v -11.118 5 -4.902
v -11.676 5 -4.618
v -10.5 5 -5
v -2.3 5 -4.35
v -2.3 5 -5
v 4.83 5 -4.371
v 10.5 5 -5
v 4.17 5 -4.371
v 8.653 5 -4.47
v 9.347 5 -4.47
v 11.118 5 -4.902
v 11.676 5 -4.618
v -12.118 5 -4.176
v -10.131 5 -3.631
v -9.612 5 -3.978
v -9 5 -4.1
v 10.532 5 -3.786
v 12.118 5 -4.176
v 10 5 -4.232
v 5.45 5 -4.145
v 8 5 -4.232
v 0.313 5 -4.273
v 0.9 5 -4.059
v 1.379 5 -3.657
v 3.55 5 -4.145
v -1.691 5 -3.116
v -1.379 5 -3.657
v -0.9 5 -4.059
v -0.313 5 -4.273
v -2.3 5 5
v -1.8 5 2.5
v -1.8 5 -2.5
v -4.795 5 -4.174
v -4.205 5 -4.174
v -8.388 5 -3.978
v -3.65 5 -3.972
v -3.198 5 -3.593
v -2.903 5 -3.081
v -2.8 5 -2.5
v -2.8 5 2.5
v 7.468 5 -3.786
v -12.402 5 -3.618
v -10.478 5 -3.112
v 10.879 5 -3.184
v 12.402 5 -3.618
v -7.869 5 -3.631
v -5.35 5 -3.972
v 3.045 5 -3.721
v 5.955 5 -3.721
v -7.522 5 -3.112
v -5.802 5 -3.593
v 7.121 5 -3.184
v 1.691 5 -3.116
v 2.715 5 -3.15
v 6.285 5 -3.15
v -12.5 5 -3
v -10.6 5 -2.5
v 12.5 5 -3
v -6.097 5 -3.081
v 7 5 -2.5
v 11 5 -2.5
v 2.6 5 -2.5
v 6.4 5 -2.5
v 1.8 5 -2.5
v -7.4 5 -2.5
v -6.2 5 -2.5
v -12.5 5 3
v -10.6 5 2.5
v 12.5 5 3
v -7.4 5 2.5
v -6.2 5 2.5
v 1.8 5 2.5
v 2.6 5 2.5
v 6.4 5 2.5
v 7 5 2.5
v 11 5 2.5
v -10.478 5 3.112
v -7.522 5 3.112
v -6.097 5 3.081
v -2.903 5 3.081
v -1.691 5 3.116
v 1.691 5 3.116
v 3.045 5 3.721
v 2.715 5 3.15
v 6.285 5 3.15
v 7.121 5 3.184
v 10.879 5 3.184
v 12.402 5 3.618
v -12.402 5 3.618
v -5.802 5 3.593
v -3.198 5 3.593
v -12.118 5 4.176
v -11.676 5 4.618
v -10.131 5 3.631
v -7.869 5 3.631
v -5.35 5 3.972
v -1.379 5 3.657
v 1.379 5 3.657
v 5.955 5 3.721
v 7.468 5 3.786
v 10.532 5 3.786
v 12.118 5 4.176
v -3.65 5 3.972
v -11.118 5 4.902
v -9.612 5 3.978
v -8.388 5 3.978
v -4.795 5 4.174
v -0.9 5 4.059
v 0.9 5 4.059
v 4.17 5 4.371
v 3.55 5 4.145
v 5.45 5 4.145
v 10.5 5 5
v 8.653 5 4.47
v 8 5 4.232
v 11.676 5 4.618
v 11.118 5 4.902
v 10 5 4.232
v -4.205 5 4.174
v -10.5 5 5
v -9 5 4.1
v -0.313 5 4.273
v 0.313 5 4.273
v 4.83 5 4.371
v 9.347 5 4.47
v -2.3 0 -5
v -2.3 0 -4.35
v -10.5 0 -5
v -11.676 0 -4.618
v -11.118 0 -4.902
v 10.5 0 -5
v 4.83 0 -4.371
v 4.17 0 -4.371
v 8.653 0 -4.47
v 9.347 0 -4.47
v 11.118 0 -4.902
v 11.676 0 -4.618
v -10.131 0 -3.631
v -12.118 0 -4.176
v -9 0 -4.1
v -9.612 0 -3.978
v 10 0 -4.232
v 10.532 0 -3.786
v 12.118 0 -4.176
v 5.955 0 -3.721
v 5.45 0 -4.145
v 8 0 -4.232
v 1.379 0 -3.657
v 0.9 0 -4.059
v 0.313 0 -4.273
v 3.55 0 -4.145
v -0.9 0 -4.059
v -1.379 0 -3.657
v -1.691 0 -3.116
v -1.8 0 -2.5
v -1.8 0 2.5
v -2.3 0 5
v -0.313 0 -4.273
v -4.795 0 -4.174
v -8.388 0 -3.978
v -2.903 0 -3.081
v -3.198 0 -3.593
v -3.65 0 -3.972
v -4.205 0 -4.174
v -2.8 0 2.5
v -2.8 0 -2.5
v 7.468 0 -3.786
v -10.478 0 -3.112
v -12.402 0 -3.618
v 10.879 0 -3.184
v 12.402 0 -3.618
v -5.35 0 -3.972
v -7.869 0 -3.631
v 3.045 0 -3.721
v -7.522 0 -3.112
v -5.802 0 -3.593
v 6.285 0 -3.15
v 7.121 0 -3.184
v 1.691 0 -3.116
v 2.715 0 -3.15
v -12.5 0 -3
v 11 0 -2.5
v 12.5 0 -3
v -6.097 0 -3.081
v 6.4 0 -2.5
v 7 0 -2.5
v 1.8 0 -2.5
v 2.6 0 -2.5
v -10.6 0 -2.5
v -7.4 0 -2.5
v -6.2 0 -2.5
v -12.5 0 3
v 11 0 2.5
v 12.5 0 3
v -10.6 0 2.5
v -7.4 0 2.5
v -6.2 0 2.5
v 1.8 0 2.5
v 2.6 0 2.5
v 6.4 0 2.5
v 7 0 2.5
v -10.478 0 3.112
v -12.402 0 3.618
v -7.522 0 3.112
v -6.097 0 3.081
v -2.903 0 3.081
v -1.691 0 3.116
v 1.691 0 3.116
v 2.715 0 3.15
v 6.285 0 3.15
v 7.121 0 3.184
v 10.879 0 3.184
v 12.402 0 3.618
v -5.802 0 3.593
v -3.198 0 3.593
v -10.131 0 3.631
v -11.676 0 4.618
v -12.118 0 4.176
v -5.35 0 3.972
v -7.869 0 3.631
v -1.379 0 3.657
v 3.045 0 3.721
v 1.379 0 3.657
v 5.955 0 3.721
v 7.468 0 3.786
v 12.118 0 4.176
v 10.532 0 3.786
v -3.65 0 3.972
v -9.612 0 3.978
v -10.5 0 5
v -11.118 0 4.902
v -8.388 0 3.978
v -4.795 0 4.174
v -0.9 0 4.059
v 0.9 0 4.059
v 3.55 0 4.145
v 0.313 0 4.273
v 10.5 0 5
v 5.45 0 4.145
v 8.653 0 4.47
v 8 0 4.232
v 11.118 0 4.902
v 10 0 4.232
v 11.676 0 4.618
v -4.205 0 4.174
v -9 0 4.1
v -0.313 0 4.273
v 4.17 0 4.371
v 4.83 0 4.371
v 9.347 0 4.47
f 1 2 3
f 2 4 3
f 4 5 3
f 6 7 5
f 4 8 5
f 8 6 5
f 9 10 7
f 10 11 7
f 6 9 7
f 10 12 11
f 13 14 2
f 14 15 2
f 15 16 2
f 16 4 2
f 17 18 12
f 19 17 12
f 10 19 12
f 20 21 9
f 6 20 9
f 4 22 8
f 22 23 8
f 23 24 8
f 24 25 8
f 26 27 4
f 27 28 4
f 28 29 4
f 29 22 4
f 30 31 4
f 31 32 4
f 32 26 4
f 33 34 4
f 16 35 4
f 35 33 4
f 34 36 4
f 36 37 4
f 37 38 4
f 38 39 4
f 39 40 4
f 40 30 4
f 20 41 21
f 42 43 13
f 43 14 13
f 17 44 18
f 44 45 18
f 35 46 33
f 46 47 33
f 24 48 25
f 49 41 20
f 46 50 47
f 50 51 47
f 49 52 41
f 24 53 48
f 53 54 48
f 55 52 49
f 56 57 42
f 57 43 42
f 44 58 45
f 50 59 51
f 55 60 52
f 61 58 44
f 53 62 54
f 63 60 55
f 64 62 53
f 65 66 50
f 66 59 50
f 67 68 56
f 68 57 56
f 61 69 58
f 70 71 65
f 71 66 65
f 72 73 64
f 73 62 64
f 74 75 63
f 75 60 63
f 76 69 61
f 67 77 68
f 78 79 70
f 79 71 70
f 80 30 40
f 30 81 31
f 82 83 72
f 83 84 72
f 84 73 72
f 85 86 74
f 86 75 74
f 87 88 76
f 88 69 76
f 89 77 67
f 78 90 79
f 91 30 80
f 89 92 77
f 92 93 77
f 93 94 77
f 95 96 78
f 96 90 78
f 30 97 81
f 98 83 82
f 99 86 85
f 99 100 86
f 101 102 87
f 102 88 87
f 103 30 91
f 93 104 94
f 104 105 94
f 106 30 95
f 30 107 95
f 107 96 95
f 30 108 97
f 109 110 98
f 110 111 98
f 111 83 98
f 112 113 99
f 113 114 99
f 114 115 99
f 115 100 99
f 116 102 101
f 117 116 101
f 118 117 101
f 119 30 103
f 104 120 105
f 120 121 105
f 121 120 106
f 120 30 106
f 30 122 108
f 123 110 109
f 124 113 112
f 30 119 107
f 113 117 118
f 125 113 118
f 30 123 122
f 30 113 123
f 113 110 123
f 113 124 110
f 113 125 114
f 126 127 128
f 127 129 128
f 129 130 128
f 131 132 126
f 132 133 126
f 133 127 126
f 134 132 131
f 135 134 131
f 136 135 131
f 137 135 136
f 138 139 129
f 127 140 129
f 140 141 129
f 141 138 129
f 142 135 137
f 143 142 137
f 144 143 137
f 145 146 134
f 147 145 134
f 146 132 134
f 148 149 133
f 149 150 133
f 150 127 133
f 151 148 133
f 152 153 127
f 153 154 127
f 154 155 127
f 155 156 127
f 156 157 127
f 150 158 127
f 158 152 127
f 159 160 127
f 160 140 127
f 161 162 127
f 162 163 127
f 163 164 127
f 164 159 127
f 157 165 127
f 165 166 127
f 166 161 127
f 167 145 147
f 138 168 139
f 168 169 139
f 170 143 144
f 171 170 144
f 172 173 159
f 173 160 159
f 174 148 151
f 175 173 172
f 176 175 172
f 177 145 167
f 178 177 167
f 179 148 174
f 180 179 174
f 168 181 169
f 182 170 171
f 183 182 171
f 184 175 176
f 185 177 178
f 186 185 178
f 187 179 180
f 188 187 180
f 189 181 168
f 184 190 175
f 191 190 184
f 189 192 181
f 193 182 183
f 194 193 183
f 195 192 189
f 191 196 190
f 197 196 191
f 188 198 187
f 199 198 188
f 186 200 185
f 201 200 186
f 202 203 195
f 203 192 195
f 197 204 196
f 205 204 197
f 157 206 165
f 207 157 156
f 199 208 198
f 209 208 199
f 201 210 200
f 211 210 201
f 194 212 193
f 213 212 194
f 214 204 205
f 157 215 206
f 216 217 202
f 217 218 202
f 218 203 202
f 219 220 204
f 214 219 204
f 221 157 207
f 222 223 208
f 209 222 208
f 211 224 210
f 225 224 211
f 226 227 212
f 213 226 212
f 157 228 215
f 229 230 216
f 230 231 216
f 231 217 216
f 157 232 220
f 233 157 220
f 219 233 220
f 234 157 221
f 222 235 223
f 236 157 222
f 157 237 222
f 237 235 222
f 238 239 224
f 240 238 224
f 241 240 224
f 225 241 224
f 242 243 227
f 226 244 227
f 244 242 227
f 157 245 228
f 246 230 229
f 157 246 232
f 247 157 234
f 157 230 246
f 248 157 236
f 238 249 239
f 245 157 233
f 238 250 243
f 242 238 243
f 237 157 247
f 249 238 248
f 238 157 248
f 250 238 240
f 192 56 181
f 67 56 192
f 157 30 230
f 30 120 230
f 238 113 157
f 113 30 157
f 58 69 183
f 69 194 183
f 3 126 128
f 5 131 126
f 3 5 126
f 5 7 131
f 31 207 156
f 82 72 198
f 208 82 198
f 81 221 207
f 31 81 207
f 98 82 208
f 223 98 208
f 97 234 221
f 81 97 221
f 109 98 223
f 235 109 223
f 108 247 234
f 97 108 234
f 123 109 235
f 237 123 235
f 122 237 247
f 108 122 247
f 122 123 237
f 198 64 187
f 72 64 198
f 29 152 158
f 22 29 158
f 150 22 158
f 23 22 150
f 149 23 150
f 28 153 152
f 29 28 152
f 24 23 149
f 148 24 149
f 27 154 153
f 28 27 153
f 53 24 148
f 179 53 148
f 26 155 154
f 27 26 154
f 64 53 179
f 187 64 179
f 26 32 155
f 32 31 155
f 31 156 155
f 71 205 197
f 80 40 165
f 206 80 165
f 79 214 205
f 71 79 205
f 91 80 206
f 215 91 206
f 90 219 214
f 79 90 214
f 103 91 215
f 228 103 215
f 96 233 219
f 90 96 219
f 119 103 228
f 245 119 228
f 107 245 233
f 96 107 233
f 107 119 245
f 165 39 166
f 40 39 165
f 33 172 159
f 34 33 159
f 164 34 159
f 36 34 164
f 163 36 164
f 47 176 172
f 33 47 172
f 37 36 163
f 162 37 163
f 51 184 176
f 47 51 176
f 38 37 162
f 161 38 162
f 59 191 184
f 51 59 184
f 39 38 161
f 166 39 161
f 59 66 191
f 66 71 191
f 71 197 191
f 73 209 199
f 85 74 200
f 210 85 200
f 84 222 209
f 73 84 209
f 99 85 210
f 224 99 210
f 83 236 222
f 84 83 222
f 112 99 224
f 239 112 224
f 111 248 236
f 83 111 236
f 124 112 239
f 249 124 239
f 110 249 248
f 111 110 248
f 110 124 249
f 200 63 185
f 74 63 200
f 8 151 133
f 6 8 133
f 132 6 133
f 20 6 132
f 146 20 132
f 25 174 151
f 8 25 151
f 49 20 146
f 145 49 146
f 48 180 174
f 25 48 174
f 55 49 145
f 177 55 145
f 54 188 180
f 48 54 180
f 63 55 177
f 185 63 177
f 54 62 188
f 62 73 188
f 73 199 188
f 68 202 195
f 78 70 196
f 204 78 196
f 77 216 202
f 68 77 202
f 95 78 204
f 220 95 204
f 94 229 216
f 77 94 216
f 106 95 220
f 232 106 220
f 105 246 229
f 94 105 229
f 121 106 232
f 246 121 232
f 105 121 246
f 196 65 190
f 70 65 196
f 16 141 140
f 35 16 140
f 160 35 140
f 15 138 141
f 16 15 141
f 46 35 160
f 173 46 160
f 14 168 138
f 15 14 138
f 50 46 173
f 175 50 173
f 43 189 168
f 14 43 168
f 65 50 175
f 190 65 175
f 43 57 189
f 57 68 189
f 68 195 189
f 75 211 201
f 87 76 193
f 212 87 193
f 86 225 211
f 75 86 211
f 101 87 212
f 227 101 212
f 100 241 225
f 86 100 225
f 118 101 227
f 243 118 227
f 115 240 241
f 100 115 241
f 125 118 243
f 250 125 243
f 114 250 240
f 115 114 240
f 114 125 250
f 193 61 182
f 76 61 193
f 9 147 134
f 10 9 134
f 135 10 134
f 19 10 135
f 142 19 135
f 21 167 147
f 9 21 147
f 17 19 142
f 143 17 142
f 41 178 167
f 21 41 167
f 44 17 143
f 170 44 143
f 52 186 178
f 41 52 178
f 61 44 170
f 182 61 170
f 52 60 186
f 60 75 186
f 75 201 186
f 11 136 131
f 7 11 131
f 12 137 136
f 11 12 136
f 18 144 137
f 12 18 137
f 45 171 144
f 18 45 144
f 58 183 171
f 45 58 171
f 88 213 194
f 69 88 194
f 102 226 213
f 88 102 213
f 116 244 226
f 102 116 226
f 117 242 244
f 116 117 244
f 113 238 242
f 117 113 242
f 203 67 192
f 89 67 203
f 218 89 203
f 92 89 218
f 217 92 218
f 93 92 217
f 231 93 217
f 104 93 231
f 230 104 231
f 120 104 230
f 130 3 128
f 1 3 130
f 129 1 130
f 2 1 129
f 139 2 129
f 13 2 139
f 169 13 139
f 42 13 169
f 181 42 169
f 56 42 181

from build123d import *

# Parameters (mm, degrees)
SKETCH1_W           = 25
SKETCH1_H           = 10
BOSS_EXTRUDE1_DEPTH = 5
FILLET1_R           = 2


with BuildPart() as part:
    # Sketch1 → Boss-Extrude1 (new body)
    with BuildSketch(Plane(origin=(0, 0, 0), x_dir=(1, 0, 0), z_dir=(0, 1, 0))):
        Rectangle(SKETCH1_W, SKETCH1_H)
        with BuildLine():
            Line((-1.8, -2.5), (-1.8, 2.5))
            ThreePointArc((-1.8, 2.5), (0, 4.3), (1.8, 2.5))
            Line((1.8, 2.5), (1.8, -2.5))
            ThreePointArc((1.8, -2.5), (0, -4.3), (-1.8, -2.5))
        make_face(mode=Mode.SUBTRACT)
        with BuildLine():
            Line((-6.2, -2.5), (-6.2, 2.5))
            ThreePointArc((-6.2, 2.5), (-4.5, 4.2), (-2.8, 2.5))
            Line((-2.8, 2.5), (-2.8, -2.5))
            ThreePointArc((-2.8, -2.5), (-4.5, -4.2), (-6.2, -2.5))
        make_face(mode=Mode.SUBTRACT)
        with BuildLine():
            Line((-10.6, -2.5), (-10.6, 2.5))
            ThreePointArc((-10.6, 2.5), (-9, 4.1), (-7.4, 2.5))
            Line((-7.4, 2.5), (-7.4, -2.5))
            ThreePointArc((-7.4, -2.5), (-9, -4.1), (-10.6, -2.5))
        make_face(mode=Mode.SUBTRACT)
        with BuildLine():
            Line((2.6, -2.5), (2.6, 2.5))
            ThreePointArc((2.6, 2.5), (4.5, 4.4), (6.4, 2.5))
            Line((6.4, 2.5), (6.4, -2.5))
            ThreePointArc((6.4, -2.5), (4.5, -4.4), (2.6, -2.5))
        make_face(mode=Mode.SUBTRACT)
        with BuildLine():
            Line((7, -2.5), (7, 2.5))
            ThreePointArc((7, 2.5), (9, 4.5), (11, 2.5))
            Line((11, 2.5), (11, -2.5))
            ThreePointArc((11, -2.5), (9, -4.5), (7, -2.5))
        make_face(mode=Mode.SUBTRACT)
    extrude(amount=BOSS_EXTRUDE1_DEPTH)

    # Fillet1
    fillet1_edges = [part.edges().sort_by_distance(p)[0] for p in [
        (-12.5, 2.5, -5),
        (12.5, 2.5, -5),
        (12.5, 2.5, 5),
        (-12.5, 2.5, 5),
    ]]
    fillet(fillet1_edges, radius=FILLET1_R)


solid = part.part
